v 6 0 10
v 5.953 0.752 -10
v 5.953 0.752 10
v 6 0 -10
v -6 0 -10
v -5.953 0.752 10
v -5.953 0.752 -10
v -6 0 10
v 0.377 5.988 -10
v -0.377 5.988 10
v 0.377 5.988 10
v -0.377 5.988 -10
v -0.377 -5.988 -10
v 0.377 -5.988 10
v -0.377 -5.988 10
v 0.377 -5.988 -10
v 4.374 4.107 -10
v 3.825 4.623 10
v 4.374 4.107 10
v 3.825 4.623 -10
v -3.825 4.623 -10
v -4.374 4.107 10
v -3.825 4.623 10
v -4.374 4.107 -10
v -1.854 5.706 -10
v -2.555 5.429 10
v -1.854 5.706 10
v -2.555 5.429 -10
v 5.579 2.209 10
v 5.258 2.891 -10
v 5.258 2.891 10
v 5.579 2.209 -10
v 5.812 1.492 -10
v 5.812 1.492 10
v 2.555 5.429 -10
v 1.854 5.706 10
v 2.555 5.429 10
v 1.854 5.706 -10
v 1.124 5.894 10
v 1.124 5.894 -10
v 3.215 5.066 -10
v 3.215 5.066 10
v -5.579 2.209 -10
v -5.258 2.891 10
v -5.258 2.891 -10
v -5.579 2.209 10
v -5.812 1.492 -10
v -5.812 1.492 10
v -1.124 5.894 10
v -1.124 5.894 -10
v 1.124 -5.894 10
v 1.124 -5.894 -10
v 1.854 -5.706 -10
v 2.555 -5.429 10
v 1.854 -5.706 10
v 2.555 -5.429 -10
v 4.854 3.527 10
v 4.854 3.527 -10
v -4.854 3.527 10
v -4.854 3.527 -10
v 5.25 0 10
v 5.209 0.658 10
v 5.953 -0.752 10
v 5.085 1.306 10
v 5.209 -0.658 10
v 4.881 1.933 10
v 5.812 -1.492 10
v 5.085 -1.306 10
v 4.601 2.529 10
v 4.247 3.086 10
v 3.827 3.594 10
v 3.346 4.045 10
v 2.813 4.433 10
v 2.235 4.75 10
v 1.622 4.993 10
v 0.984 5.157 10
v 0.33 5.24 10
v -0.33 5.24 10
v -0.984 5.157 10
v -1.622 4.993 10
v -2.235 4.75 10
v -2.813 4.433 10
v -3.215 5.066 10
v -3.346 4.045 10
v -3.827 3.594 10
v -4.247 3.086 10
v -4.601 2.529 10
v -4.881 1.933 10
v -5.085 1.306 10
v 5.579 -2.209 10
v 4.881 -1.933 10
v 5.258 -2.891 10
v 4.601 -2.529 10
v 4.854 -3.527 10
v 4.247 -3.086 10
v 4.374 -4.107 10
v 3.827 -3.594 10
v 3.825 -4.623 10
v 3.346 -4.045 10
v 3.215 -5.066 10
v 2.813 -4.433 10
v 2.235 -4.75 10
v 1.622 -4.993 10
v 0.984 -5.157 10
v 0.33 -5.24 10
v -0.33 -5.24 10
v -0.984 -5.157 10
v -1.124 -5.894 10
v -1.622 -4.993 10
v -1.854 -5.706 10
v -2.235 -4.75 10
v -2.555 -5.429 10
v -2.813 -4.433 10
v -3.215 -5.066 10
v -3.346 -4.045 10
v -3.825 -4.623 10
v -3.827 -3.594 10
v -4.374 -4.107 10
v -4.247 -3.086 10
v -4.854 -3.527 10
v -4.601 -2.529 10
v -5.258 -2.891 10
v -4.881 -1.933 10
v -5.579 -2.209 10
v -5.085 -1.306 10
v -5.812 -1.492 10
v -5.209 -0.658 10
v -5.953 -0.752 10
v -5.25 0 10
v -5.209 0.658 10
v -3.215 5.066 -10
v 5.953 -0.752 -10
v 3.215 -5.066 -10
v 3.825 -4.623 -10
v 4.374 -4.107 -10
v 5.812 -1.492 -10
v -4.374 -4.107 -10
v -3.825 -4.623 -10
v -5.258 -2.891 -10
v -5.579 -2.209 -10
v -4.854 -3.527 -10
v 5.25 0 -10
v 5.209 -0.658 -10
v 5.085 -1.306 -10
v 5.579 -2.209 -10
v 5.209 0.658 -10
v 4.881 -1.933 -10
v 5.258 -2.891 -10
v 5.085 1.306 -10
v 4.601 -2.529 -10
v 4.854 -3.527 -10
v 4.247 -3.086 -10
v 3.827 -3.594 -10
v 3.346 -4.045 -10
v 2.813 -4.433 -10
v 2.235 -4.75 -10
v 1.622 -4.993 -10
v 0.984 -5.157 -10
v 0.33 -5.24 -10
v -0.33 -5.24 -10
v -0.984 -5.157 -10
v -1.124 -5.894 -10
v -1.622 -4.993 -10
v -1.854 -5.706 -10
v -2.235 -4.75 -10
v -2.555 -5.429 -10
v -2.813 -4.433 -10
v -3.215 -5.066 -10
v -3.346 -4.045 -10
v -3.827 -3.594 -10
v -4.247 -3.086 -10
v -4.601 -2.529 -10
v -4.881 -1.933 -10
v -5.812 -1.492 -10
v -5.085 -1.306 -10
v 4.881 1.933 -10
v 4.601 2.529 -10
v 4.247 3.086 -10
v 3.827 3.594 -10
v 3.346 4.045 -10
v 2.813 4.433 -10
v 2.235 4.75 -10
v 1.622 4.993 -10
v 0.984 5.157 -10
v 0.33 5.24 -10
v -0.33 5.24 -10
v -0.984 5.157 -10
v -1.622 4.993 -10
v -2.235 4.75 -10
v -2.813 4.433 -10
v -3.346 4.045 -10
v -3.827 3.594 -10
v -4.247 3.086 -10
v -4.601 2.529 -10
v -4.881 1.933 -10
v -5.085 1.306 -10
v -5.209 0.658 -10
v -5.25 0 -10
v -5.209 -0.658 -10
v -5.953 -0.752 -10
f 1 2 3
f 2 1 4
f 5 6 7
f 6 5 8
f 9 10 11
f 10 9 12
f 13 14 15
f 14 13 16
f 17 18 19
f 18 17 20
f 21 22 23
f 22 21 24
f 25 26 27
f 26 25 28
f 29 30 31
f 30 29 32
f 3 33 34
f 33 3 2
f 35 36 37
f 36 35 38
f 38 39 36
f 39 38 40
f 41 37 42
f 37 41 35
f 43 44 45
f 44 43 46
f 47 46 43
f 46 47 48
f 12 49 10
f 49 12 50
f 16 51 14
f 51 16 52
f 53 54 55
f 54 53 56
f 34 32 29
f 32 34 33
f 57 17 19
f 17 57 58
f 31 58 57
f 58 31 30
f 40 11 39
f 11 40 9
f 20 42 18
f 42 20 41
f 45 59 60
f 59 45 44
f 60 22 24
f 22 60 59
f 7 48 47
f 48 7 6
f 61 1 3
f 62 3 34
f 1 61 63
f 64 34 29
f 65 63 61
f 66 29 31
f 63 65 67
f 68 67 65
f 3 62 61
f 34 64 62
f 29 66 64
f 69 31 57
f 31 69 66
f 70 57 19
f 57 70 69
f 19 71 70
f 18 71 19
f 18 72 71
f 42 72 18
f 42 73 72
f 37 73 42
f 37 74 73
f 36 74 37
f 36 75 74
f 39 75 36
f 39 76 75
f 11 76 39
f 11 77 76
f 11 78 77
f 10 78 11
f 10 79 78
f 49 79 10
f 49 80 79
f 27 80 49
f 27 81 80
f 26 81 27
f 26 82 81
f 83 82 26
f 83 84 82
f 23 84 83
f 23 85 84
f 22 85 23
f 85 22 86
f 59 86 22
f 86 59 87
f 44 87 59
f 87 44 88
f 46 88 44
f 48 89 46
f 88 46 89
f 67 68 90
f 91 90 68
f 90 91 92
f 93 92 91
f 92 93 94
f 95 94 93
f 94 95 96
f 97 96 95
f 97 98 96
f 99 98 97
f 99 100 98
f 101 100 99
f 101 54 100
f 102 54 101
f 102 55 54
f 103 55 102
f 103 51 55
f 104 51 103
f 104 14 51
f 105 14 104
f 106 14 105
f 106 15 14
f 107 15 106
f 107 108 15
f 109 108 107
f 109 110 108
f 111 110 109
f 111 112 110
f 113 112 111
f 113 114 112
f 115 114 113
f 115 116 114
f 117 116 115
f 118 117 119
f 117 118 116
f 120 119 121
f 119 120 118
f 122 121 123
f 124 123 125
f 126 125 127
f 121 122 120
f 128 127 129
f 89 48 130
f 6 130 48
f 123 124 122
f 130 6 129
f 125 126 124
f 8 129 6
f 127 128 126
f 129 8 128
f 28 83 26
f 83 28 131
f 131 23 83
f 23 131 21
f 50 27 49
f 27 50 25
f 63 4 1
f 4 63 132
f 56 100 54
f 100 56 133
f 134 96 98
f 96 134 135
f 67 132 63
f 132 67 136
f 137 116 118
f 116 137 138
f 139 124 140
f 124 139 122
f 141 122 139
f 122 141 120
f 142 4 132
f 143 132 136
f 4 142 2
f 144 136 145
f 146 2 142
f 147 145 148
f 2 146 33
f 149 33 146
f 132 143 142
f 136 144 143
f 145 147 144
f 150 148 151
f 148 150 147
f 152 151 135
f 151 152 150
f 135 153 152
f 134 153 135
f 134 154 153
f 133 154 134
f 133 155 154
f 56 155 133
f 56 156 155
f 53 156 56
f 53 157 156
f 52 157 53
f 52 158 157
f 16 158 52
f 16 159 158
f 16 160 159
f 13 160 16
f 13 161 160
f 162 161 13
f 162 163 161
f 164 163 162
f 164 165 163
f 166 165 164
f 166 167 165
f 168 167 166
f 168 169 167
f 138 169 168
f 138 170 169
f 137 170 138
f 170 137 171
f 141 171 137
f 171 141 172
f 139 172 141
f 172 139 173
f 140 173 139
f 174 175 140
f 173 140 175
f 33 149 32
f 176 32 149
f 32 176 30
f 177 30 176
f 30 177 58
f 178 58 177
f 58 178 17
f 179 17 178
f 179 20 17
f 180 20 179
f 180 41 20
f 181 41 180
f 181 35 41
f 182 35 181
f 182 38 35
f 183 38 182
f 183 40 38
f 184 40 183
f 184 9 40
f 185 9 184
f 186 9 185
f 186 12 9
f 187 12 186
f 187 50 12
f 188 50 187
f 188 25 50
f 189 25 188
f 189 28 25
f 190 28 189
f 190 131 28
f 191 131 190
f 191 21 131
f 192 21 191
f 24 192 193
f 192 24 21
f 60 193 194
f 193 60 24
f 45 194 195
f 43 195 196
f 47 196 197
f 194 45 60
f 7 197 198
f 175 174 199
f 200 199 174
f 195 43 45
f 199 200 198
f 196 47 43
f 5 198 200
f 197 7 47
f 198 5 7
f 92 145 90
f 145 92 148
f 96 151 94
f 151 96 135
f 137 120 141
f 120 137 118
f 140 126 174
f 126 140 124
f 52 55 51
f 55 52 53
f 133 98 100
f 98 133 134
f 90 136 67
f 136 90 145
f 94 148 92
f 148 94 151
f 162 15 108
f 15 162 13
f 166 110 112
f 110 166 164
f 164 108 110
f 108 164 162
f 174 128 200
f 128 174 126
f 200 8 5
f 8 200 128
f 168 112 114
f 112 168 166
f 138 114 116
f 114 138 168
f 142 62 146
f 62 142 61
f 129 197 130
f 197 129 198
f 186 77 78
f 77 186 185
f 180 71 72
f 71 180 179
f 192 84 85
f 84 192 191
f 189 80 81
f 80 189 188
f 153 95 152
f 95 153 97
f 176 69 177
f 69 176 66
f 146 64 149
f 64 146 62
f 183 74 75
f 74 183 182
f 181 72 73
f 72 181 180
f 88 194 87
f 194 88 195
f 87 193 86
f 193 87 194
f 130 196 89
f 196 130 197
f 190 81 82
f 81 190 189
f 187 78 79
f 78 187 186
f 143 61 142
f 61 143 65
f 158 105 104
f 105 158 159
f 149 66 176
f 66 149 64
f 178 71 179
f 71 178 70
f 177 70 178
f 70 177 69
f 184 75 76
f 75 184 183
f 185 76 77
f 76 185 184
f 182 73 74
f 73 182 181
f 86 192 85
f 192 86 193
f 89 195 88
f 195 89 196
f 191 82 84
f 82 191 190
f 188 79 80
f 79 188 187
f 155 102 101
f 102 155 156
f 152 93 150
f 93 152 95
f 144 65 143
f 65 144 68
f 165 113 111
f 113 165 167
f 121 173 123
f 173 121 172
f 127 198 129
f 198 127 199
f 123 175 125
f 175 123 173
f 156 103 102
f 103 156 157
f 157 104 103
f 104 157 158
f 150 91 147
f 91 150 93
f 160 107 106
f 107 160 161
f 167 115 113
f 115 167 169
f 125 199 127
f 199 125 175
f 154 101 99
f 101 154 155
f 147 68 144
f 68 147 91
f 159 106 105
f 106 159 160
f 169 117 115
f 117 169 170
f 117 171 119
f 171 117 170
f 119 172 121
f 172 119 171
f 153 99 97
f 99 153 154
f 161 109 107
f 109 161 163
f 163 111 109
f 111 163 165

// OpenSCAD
$fn = 50;


difference() {
	union() {
		translate(v = [0, 0, -10.0000000000]) {
			cylinder(h = 20, r = 6.0000000000);
		}
	}
	union() {
		translate(v = [0, 0, -100.0000000000]) {
			cylinder(h = 200, r = 5.2500000000);
		}
	}
}
